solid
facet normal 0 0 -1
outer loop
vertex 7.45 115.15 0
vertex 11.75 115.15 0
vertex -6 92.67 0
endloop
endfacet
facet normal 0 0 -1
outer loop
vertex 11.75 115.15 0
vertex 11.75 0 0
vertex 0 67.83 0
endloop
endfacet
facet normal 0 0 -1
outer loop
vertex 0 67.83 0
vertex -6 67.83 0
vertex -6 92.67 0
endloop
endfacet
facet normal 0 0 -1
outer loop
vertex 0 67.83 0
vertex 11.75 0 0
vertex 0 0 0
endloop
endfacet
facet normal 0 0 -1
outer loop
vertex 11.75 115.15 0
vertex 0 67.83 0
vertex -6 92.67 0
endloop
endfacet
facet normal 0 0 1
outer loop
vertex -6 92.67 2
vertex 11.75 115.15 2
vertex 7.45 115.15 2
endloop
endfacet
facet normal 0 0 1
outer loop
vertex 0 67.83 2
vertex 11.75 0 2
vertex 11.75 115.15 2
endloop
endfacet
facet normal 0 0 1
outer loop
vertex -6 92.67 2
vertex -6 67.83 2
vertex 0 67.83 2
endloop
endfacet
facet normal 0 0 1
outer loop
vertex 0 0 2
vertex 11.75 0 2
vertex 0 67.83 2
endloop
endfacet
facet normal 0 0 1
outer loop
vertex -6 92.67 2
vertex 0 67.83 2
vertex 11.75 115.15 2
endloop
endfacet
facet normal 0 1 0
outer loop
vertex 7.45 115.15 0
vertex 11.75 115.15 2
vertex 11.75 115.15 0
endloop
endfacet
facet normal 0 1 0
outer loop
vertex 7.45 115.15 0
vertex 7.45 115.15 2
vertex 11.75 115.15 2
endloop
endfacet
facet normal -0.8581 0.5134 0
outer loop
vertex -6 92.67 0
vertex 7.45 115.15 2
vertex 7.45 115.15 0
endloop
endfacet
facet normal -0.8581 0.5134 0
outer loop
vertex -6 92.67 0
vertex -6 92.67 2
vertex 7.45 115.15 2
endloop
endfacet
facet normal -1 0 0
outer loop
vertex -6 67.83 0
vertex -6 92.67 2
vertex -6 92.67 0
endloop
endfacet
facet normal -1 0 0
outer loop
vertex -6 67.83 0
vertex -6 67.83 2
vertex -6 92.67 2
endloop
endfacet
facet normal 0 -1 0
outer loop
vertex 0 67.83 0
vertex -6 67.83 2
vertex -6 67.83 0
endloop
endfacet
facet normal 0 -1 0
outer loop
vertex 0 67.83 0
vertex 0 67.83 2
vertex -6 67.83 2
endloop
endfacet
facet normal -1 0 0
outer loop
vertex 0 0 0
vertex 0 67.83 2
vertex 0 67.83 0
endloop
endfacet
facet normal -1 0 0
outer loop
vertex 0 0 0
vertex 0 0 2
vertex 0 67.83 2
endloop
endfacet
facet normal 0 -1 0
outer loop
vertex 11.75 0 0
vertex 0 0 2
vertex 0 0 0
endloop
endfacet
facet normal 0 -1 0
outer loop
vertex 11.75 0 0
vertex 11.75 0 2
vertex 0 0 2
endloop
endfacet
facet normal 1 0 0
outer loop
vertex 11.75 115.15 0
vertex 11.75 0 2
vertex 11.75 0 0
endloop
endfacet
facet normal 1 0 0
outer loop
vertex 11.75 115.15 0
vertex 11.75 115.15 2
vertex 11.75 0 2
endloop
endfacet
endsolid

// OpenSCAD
height=2;       

linear_extrude(height=height)
polygon([ [0,0]
    ,[0+11.75,0+0]
    ,[0+11.75+0,0+0+115.15]
    ,[0+11.75+0+-4.3,0+0+115.15+0]
    ,[0+11.75+0+-4.3+-13.45,0+0+115.15+0+-22.48]
    ,[0+11.75+0+-4.3+-13.45+0,0+0+115.15+0+-22.48+-24.84]
    ,[0+11.75+0+-4.3+-13.45+0+6,0+0+115.15+0+-22.48+-24.84+0]
    ,[0+11.75+0+-4.3+-13.45+0+6+0,0+0+115.15+0+-22.48+-24.84+0+-67.83]
]);
